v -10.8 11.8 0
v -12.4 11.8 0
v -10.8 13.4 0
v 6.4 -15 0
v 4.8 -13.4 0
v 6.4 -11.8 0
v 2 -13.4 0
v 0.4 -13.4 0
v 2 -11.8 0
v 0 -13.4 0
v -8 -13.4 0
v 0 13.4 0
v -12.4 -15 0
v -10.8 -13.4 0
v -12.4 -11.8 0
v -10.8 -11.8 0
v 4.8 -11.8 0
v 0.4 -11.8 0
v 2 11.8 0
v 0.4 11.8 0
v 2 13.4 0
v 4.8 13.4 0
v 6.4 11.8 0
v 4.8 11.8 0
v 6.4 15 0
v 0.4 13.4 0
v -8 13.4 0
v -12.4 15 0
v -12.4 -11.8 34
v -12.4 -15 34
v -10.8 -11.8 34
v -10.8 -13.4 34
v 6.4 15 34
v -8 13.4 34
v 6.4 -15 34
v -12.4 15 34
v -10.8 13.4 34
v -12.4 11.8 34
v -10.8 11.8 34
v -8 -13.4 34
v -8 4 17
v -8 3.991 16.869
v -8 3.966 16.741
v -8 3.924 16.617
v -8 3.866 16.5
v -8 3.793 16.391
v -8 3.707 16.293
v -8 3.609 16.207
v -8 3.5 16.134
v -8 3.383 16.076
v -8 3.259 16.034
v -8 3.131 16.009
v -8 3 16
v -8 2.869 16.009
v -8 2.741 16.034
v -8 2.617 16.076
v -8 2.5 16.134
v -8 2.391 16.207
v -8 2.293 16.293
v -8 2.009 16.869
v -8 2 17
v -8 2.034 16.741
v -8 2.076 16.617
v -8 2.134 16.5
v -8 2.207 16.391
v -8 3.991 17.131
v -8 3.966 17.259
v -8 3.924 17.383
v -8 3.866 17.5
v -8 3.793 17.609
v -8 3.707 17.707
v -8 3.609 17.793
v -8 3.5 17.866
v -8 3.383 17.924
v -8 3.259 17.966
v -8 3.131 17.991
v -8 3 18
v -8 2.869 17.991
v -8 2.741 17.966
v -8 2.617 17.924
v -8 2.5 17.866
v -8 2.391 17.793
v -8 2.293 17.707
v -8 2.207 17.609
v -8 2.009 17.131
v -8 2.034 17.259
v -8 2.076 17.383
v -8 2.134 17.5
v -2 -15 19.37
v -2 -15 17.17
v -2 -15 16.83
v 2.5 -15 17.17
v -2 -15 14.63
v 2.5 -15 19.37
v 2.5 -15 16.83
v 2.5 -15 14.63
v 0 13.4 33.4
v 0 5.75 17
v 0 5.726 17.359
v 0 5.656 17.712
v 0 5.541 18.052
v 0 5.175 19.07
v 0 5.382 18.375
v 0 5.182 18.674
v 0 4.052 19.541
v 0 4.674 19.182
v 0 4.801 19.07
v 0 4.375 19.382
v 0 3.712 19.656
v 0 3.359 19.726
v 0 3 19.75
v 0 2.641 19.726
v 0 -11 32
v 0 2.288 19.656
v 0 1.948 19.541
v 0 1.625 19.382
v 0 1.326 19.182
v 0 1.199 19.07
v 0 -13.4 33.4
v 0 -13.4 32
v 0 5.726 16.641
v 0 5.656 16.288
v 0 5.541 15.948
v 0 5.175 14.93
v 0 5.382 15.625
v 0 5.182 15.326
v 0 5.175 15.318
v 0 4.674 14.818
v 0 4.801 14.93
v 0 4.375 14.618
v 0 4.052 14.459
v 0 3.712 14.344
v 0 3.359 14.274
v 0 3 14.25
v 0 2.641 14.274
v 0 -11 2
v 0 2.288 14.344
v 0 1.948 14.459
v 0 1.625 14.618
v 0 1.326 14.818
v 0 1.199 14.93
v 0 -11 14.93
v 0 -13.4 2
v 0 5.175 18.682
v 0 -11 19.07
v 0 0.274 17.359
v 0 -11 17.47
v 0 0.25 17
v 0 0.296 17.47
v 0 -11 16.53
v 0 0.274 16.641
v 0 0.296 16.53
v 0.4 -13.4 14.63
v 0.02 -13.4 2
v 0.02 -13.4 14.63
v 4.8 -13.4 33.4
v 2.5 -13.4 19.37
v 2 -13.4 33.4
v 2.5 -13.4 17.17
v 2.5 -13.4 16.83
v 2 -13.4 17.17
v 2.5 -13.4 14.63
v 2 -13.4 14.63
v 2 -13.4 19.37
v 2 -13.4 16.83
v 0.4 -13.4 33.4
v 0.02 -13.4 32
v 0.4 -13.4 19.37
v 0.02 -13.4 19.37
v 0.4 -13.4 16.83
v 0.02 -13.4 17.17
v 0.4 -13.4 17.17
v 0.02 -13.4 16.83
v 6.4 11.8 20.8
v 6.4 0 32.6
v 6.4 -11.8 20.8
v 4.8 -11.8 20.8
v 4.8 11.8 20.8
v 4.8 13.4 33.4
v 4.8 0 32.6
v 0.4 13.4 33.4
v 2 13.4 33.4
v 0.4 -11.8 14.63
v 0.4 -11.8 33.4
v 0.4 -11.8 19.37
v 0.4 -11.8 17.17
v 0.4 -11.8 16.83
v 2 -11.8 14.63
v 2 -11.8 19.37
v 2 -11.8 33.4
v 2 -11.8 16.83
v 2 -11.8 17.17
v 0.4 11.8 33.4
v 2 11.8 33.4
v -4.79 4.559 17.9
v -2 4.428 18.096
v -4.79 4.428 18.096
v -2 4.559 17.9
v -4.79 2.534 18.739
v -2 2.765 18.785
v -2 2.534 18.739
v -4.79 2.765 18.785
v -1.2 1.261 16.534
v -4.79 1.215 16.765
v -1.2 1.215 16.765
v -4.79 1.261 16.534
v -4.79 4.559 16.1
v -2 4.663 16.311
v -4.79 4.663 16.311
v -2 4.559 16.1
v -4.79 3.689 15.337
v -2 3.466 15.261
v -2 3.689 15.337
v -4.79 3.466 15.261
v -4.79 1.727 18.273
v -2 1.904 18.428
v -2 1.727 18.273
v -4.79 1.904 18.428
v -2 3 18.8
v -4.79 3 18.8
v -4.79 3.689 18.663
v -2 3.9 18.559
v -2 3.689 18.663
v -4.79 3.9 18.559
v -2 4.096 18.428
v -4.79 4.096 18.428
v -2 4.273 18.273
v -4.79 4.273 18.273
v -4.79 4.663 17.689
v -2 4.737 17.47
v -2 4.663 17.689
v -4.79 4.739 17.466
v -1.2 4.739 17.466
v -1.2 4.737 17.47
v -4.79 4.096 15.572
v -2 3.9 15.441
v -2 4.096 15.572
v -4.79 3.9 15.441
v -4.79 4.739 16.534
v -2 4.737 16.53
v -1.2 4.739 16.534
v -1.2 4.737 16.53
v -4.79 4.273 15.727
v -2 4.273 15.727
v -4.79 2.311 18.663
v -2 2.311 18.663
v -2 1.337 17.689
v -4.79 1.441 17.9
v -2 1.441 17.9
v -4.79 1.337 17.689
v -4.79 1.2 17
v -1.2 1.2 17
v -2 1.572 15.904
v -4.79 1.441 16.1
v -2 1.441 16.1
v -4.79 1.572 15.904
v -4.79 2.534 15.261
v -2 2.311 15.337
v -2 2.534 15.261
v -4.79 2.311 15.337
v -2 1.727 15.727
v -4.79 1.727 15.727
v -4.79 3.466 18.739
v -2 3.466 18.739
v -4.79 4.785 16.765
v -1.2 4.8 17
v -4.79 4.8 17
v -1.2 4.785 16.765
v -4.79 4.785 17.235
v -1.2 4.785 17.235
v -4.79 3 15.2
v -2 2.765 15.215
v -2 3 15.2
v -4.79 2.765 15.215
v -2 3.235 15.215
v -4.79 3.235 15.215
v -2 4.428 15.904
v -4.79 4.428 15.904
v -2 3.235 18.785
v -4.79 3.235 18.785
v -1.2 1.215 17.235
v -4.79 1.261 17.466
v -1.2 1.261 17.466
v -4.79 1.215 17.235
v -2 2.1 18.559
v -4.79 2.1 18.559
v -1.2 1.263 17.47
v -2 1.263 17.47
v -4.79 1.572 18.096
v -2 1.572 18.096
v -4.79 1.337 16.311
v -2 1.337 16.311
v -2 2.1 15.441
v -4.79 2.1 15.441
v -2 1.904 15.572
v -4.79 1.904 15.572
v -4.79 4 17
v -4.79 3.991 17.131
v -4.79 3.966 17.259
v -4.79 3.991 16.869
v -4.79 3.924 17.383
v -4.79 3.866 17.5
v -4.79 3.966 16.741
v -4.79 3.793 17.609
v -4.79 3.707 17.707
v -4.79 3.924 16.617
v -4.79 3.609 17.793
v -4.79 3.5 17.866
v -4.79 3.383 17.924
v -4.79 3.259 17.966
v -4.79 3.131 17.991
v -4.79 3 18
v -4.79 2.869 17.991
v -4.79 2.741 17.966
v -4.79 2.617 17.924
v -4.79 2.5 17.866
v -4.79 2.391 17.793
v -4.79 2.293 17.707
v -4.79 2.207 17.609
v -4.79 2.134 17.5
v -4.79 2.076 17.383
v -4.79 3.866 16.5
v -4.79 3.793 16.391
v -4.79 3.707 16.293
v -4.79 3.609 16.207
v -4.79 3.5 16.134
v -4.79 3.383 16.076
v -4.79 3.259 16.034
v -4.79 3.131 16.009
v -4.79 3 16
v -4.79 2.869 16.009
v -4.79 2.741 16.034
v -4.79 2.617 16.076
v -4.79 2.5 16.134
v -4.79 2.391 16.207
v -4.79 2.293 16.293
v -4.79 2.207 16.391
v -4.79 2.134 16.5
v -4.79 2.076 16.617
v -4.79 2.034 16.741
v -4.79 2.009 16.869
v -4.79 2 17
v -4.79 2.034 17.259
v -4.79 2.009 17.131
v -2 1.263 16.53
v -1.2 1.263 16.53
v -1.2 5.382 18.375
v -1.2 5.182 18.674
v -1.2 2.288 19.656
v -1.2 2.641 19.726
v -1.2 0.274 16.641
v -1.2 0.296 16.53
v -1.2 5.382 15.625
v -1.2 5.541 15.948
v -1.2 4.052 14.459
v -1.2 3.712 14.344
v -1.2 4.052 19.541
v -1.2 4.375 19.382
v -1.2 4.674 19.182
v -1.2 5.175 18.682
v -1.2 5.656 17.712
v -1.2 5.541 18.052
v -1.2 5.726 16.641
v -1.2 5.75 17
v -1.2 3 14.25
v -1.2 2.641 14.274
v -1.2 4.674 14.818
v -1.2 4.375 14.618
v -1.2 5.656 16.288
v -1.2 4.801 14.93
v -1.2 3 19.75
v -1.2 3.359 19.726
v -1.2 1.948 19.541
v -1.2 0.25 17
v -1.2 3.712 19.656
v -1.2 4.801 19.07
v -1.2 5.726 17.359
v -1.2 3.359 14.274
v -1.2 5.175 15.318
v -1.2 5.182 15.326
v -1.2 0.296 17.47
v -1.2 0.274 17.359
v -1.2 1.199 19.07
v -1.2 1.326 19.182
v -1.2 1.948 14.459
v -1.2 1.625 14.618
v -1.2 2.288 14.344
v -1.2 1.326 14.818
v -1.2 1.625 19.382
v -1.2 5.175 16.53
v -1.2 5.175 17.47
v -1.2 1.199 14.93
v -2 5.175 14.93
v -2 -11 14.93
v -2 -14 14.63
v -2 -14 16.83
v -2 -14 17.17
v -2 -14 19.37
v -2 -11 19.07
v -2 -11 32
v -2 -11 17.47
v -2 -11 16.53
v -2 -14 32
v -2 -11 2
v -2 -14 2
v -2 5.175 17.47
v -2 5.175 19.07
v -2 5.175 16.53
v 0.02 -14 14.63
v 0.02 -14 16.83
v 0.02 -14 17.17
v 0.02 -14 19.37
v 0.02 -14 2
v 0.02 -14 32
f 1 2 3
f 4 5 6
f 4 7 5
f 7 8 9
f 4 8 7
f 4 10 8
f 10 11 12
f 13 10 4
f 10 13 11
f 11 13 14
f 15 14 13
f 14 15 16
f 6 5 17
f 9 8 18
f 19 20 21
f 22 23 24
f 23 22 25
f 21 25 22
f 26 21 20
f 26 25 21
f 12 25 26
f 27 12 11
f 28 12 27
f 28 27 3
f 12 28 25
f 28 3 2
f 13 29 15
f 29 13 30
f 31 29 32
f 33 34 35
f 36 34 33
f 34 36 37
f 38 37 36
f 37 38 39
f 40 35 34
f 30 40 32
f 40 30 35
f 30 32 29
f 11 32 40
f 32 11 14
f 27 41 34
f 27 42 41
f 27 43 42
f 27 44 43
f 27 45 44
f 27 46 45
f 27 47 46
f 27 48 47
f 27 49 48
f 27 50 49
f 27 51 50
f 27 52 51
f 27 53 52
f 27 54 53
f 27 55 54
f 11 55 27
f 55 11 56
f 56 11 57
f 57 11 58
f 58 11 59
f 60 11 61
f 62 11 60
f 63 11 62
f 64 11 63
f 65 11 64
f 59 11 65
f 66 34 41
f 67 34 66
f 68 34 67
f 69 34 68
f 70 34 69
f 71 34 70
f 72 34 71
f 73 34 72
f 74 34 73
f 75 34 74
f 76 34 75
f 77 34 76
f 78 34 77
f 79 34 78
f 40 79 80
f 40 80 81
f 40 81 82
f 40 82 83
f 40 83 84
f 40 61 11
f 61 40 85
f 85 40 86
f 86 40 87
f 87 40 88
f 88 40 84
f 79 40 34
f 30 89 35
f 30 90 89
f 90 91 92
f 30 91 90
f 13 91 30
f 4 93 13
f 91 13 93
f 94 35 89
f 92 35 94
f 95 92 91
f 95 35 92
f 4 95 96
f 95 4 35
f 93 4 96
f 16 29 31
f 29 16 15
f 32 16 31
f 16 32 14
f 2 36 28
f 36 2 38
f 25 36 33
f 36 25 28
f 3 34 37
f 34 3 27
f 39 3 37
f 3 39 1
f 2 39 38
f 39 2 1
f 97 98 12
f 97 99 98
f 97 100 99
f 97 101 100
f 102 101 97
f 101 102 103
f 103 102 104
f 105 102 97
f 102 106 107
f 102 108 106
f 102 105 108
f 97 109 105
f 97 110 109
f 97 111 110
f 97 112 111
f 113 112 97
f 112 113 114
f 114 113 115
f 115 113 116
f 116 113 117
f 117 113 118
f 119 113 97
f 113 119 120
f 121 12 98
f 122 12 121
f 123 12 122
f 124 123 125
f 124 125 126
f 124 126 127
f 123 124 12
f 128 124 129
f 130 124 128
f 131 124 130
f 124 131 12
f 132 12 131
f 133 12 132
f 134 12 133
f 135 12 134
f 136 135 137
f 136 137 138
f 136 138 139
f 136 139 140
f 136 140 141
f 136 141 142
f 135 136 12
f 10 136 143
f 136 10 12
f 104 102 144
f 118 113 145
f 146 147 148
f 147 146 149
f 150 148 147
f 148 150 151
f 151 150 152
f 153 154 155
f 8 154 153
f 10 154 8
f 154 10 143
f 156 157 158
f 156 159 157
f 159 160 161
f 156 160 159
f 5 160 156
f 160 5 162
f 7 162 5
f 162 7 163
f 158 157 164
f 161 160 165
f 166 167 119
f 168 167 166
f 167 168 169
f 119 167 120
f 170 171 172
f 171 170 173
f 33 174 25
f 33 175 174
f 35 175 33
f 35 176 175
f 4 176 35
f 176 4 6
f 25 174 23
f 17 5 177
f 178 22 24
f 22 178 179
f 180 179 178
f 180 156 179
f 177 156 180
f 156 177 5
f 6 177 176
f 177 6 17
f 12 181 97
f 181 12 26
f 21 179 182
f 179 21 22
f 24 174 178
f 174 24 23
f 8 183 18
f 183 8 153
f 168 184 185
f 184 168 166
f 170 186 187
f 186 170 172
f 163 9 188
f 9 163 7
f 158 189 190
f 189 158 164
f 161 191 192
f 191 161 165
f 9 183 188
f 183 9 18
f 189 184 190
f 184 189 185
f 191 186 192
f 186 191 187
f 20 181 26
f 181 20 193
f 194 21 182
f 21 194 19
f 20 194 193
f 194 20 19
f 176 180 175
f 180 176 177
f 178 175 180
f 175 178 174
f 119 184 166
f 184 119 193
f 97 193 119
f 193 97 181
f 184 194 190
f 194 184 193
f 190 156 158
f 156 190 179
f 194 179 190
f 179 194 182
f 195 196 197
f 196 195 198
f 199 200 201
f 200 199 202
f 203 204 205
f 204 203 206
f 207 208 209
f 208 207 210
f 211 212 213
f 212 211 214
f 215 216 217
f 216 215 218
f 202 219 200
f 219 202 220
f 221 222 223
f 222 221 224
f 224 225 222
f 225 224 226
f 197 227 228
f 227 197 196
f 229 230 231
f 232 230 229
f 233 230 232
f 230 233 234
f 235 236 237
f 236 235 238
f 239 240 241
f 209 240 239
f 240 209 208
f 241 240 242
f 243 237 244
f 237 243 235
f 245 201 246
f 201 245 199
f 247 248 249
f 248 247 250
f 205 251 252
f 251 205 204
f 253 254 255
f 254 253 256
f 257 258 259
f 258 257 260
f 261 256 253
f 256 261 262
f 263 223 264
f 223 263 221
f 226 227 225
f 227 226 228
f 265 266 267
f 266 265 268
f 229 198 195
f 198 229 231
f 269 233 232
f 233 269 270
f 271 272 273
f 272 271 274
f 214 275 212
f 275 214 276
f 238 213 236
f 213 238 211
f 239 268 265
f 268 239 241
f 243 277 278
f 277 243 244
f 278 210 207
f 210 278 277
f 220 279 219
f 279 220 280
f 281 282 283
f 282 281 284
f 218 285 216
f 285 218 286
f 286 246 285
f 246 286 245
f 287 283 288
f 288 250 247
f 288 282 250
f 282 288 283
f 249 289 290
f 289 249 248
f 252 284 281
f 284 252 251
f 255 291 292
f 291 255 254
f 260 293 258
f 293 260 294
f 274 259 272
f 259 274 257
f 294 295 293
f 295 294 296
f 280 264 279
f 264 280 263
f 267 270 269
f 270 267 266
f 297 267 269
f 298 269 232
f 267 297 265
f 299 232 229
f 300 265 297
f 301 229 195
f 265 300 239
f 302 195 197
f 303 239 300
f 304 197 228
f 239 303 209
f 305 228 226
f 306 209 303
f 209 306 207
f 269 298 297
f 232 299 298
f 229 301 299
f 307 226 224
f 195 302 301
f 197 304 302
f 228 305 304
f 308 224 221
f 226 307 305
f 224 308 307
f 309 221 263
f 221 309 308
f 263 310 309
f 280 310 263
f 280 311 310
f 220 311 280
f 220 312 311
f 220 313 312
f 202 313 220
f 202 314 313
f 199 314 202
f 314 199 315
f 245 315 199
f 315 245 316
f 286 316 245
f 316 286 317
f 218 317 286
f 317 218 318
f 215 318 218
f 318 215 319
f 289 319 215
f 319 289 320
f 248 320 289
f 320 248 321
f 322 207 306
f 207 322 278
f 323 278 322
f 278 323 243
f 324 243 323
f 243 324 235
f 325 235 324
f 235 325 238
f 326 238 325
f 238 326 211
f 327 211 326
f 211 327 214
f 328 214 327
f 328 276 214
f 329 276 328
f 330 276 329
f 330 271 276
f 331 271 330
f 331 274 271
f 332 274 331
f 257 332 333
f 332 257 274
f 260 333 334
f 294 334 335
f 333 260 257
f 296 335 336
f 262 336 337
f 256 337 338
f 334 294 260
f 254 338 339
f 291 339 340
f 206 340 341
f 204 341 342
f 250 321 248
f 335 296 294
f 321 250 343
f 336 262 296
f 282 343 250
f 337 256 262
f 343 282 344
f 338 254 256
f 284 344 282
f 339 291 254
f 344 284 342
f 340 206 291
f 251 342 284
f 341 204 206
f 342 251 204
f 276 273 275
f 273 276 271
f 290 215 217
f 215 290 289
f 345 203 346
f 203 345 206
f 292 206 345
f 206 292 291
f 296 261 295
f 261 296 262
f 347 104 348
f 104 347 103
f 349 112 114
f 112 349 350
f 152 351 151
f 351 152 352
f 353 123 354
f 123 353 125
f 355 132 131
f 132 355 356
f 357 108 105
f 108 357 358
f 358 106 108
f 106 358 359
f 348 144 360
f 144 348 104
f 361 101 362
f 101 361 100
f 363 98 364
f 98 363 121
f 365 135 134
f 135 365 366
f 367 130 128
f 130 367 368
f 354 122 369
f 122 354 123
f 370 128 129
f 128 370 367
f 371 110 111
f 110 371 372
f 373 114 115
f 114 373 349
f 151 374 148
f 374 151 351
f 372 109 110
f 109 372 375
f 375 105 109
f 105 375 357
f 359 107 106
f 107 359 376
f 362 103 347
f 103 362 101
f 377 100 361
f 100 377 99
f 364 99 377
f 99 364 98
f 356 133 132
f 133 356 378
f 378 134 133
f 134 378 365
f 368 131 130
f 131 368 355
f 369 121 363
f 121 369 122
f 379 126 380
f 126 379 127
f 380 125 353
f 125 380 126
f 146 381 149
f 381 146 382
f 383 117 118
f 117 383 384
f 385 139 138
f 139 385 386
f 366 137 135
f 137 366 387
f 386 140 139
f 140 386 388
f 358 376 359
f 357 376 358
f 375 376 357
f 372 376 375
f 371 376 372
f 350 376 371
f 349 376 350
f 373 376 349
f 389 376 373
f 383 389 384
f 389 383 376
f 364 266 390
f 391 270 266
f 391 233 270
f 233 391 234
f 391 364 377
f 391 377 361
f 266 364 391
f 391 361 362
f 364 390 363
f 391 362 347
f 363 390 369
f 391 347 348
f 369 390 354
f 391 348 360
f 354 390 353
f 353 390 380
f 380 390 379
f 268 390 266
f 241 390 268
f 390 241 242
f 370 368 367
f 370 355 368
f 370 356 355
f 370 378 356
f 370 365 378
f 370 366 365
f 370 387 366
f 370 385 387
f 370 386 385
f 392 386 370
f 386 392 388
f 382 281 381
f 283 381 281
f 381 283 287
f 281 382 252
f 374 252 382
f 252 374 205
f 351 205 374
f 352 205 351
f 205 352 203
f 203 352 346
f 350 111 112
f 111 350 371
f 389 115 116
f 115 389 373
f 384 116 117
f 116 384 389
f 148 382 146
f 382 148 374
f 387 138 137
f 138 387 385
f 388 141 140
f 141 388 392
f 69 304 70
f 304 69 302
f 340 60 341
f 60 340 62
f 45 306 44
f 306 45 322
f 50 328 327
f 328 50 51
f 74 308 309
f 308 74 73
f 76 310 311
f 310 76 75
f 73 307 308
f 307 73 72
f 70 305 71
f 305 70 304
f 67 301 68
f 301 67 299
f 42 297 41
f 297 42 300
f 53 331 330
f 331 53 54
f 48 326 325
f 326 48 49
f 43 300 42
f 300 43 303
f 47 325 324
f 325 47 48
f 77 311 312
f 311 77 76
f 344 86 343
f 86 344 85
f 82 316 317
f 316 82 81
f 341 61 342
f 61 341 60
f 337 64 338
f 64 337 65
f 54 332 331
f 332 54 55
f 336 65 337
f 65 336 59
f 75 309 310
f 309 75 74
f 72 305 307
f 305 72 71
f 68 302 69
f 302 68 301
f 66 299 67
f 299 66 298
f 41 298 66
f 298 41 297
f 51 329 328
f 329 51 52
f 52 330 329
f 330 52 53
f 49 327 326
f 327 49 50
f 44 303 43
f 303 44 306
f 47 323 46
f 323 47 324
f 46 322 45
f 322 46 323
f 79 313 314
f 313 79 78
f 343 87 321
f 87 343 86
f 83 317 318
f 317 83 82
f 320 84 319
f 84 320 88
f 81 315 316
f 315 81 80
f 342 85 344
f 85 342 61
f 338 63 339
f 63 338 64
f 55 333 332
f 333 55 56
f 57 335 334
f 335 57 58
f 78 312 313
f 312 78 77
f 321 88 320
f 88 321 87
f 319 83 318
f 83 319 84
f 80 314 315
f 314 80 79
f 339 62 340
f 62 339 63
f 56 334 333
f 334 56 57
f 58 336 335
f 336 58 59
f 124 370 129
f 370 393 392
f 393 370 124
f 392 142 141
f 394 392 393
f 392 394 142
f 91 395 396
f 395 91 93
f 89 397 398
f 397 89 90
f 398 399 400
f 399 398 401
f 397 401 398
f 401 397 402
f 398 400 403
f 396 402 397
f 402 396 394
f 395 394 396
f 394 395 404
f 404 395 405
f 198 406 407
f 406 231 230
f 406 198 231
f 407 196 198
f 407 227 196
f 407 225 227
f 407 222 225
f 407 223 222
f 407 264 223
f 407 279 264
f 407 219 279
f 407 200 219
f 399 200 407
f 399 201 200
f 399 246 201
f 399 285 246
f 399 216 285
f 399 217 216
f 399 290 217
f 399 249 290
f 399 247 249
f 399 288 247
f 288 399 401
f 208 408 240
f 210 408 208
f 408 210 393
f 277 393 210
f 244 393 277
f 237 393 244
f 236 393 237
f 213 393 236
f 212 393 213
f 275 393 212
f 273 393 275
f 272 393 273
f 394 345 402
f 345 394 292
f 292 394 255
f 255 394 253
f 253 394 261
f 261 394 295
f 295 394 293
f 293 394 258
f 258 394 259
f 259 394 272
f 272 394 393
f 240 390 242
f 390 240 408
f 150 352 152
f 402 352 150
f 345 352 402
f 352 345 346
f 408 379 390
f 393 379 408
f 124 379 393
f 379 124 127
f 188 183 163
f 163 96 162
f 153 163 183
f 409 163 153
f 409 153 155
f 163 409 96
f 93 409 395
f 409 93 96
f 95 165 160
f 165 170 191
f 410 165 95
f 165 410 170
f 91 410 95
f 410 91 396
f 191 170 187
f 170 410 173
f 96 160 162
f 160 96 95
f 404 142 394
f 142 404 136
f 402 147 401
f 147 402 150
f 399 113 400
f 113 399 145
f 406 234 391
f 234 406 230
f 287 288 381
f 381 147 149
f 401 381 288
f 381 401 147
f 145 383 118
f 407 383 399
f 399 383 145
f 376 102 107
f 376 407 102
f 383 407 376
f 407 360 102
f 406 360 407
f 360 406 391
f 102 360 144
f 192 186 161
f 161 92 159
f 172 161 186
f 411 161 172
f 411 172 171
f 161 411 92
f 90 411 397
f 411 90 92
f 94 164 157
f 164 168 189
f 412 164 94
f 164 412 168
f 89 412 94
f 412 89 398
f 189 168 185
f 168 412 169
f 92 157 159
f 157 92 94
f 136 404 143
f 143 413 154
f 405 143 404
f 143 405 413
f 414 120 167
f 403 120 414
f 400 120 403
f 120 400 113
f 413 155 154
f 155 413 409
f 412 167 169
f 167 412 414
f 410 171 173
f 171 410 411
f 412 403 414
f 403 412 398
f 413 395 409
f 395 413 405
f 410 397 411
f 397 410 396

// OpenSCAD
// Fixed single-port V11 companion; all three printed parts are NEW.
// Derived locally from accepted dual V11; accepted source is untouched.
// Provisional package dimensions, not measured fit. Units mm.
// FRONT/light entry: +x right, +y up, +z toward light; leads exit -y.
// Assembly body z=0..8. Individual exports are already on the bed.
$fn = 48;
part = "holder"; // holder, rear_cover, front_shutter, assembly
state = "closed"; // open, closed, exploded, custom
print_ready = true;
rear_x = 0; // seated at 0; slide toward -x for intentional removal
front_x = 0; // used only by state="custom" verification
show_envelopes = true;

body_x = 34;
body_y = 30;
body_z = 8;
diode_y = 3;
pocket_d = 3.60;
lead_groove_end_y = diode_y+3.35/2+0.5; // Preserve exact v4 endpoint independently of head bore.
pocket_depth = 4.8;
flange_d = 5.5;       // <=1 mm estimate was RADIAL overhang, one flat side
flange_depth = 1.2;   // axial thickness UNMEASURED; provisional
aperture_d = 2;

slide_clearance = 0.4; // per lateral side; initial FDM fit
slide_z_clearance = 0.4; // independently adjustable, EACH vertical bearing face
panel_y = 26;
panel_t = 2;
rail_lip = 1.6;
rail_overlap = 1.2; // preserve the -y wire-side guide and exit clearance
rear_gap = 2.4;        // wire cavity: body underside to cover inner face
assumed_flange_t = 1.2; // UNMEASURED; update after part measurement
retaining_gap = 0.6;   // nominal non-preload axial gap at flange lands
lead_slot_w = 1.6;
lead_slot_depth = 2;
lead_pitch = 2.54;
wire_exit_w = 2.2;
wire_exit_drop = 2.5; // Clear bent leads through full 1.0 mm axial travel to lowest lands.

shutter_travel = 5; // CLOSED insertion stop; OPEN is manually aligned at 0.
shutter_left = -body_x/2-shutter_travel-3;
shutter_stop_right = -body_x/2-shutter_travel;
shutter_window_d = 4;
eps = 0.02;

front_bottom = body_z + slide_z_clearance;
front_top = front_bottom + panel_t;
front_cap_bottom = front_top + slide_z_clearance;
front_cap_top = front_cap_bottom + rail_lip;
rear_top = -rear_gap;
rear_bottom = rear_top - panel_t;
rear_cap_top = rear_bottom - slide_z_clearance;
rear_cap_bottom = rear_cap_top - rail_lip;
rear_ceiling = rear_top + slide_z_clearance;
flange_back_z = flange_depth-assumed_flange_t;
retaining_top = flange_back_z-retaining_gap;
open_x = 0;
closed_x = shutter_travel;

assert(shutter_stop_right+closed_x == -body_x/2, "CLOSED stop meets loading edge");
assert(shutter_left+closed_x <= -body_x/2-2, "Grip remains outside at stop");
assert(flange_d > pocket_d, "Flange must retain a shoulder");
assert(flange_depth > 0 && flange_depth < pocket_depth-0.01,
       "flange_depth must be inside the original pocket depth");
assert(slide_clearance >= 0.25 && body_y/2-panel_y/2-slide_clearance >= 1.2,
       "slide_clearance must be >=0.25 and leave >=1.2 mm rail walls");
assert(rear_gap >= 1.5, "rear_gap must leave provisional lead-bend space");
assert(slide_z_clearance >= 0.25 && slide_z_clearance <= 0.55,
       "slide_z_clearance must be 0.25..0.55 per bearing face");
assert(retaining_gap > slide_z_clearance+0.1,
       "lands need a non-preload gap even at maximum cover lift");
assert(retaining_top-rear_top > 1.4+0.2,
       "increase rear_gap: lands must stop flange before representative bent leads touch cover");
assert(shutter_travel-slide_clearance > (shutter_window_d+aperture_d)/2+1,
       "closed shutter needs >1 mm solid optical overlap");
if (part == "holder") {
    if (print_ready) translate([0,0,body_x/2]) rotate([0,-90,0]) holder();
    else holder();
} else if (part == "rear_cover") {
    translate([0,0,print_ready ? -rear_bottom : 0]) rear_cover();
} else if (part == "front_shutter") {
    translate([0,0,print_ready ? -front_bottom : 0]) front_shutter();
} else if (part == "assembly") assembly(state);
else assert(false,"Unknown part selector");

module box(x0,x1,y0,y1,z0,z1) {
    translate([x0,y0,z0]) cube([x1-x0,y1-y0,z1-z0]);
}

module holder() {
    difference() {
        union() {
            box(-body_x/2,body_x/2,-15,15,0,body_z);
            guide_rails(front_cap_bottom,front_cap_top,body_z,front_cap_top);
            guide_rails(rear_cap_bottom,rear_cap_top,rear_cap_bottom,0);
            // Upper rear bearing lips bound cover lift as well as downward motion.
            guide_rails(rear_ceiling,rear_ceiling+rail_lip,rear_cap_bottom,0);
            // Rear far-end wall: rail ends overlap; loading is from -x only.
            box(body_x/2-1+slide_clearance,body_x/2,-15,15,rear_cap_bottom,0);
            // 45-degree side-print gussets beneath the cover. They meet before
            // the far wall starts, reducing its 26.8 mm bridge to <=4.8 mm.
            for (s=[-1,1]) translate([0,0,rear_cap_bottom])
                linear_extrude(rail_lip)
                    polygon([[body_x/2-14.8,s*13.4],[body_x/2-1.4,0],[body_x/2,0],[body_x/2,s*13.4]]);
        }
        for (cx=[0]) {
            optical_pocket(cx);
            for (dx=[-lead_pitch/2,lead_pitch/2]) {
                // Continuous pocket -> old trench -> rear edge; widened for routing.
                box(cx+dx-lead_slot_w/2,cx+dx+lead_slot_w/2,
                    -15-eps,lead_groove_end_y,-eps,lead_slot_depth);
                // Through the -y rail wall as well as the body edge.
                box(cx+dx-wire_exit_w/2,cx+dx+wire_exit_w/2,
                    -15-eps,-11,-wire_exit_drop,lead_slot_depth);
            }
        }
        // Rear cross-trench connects exactly two lead grooves.
        box(-body_x/2+2,body_x/2-2,-14,-11,-eps,2);

    }
}

module optical_pocket(cx=0) {
    // Preserve accepted V11 stepped cutters, including the -0.01 bore offset.
    translate([cx,diode_y,pocket_depth/2-0.01])
        cylinder(d=pocket_d,h=pocket_depth,center=true);
    translate([cx,diode_y,-0.01]) cylinder(d=flange_d,h=flange_depth+0.01);
    top_wall=body_z-pocket_depth;
    translate([cx,diode_y,body_z-top_wall/2+0.01])
        cylinder(d=aperture_d,h=top_wall+1,center=true);
}

module guide_rails(cap0,cap1,wall0,wall1) {
    for (s=[-1,1]) {
        if (s>0) {
            box(-body_x/2,body_x/2,panel_y/2+slide_clearance,15,wall0,wall1);
            box(-body_x/2,body_x/2,panel_y/2-rail_overlap,15,cap0,cap1);
        } else {
            box(-body_x/2,body_x/2,-15,-panel_y/2-slide_clearance,wall0,wall1);
            box(-body_x/2,body_x/2,-15,-panel_y/2+rail_overlap,cap0,cap1);
        }
    }
}

module rear_cover() {
    union() {
        box(-body_x/2-2,body_x/2-1,-panel_y/2,panel_y/2,rear_bottom,rear_top);
        // Fixed insertion stop; no withdrawal restraint.
        box(-body_x/2-2,-body_x/2,-panel_y/2,panel_y/2,rear_bottom,0.8);
        box(-body_x/2-6,-body_x/2,-5,5,rear_bottom,rear_top); // simple finger pull
        retaining_lands();
    }
}

module retaining_lands() {
    // Two forward lands per flange. Keeping ALL lands ahead of the roots also
    // avoids sweeping through the bent -y leads while this panel slides along x.
    for (cx=[0]) {
        for (s=[-1,1]) {
            if (s<0) box(cx-1.7,cx-0.4,4,5,rear_top-eps,retaining_top);
            else box(cx+0.4,cx+1.7,4,5,rear_top-eps,retaining_top);
        }
    }
}

module front_shutter() {
    difference() {
        union() {
            box(shutter_left,body_x/2,-panel_y/2,panel_y/2,front_bottom,front_top);
            // CLOSED insertion stop; OPEN is a mark, not a detent.
            box(shutter_left,shutter_stop_right,-panel_y/2,6,front_bottom,front_cap_top);
        }
        for (cx=[0])
            translate([cx,diode_y,front_bottom-eps])
                cylinder(d=shutter_window_d,h=panel_t+2*eps);
        // Align chosen tick to the SAME upper loading rail edge x=-17.
        // O = OPEN, C = CLOSED. Engraving leaves 1.4 mm plate thickness.
        for (m=[[-body_x/2,"O"],[-body_x/2-shutter_travel,"C"]]) {
            box(m[0]-0.25,m[0]+0.25,9.5,11.5,front_top-0.6,front_top+eps);
            translate([m[0],7.6,front_top-0.6]) linear_extrude(0.6+eps)
                text(m[1],size=3,halign="center",valign="center",font="Arial:style=Bold");
        }
    }
}

module diode_envelopes() {
    // Representative ONLY: 3.0 barrel, <=5.0 flange, 1.2 flange thickness.
    // Envelopes are separate verification/preview objects, not printable outputs.
    for (cx=[0]) {
        translate([cx,diode_y,flange_depth]) cylinder(d=3,h=3.4);
        translate([cx,diode_y,flange_back_z]) intersection() {
            cylinder(d=5,h=assumed_flange_t);
            box(-3,3,-3,2.1,-eps,assumed_flange_t+eps); // one flat side
        }
    }
}

module lead_envelopes() {
    // 0.6 mm diameter leads, 0.8 mm bend radius, leaving -y at z=-1.1.
    translate([0,0,flange_back_z])
    for (cx=[0]) for (dx=[-lead_pitch/2,lead_pitch/2]) {
        translate([cx+dx,diode_y,-0.3]) cylinder(d=0.6,h=0.3);
        for (a=[0:10:80]) hull() for (b=[a,a+10])
            translate([cx+dx,diode_y-0.8+0.8*cos(b),-0.3-0.8*sin(b)]) sphere(d=0.6,$fn=16);
        translate([cx+dx,-18,-1.1]) rotate([-90,0,0])
            cylinder(d=0.6,h=diode_y-0.8+18);
    }
}

function shutter_offset(s) =
    s=="open" ? open_x : s=="closed" ? closed_x :
    s=="exploded" ? -45 : s=="custom" ? front_x :
    assert(false,"Unknown shutter state") 0;

module assembly(s="closed") {
    color([0.23,0.35,0.42]) holder();
    color([0.8,0.57,0.17]) translate([s=="exploded" ? -45 : rear_x,0,0]) rear_cover();
    color([0.18,0.66,0.64]) translate([shutter_offset(s),0,s=="exploded" ? 16 : 0]) front_shutter();
    if (show_envelopes) {
        color([0.65,0.25,0.22]) diode_envelopes();
        color("silver") lead_envelopes();
    }
}
